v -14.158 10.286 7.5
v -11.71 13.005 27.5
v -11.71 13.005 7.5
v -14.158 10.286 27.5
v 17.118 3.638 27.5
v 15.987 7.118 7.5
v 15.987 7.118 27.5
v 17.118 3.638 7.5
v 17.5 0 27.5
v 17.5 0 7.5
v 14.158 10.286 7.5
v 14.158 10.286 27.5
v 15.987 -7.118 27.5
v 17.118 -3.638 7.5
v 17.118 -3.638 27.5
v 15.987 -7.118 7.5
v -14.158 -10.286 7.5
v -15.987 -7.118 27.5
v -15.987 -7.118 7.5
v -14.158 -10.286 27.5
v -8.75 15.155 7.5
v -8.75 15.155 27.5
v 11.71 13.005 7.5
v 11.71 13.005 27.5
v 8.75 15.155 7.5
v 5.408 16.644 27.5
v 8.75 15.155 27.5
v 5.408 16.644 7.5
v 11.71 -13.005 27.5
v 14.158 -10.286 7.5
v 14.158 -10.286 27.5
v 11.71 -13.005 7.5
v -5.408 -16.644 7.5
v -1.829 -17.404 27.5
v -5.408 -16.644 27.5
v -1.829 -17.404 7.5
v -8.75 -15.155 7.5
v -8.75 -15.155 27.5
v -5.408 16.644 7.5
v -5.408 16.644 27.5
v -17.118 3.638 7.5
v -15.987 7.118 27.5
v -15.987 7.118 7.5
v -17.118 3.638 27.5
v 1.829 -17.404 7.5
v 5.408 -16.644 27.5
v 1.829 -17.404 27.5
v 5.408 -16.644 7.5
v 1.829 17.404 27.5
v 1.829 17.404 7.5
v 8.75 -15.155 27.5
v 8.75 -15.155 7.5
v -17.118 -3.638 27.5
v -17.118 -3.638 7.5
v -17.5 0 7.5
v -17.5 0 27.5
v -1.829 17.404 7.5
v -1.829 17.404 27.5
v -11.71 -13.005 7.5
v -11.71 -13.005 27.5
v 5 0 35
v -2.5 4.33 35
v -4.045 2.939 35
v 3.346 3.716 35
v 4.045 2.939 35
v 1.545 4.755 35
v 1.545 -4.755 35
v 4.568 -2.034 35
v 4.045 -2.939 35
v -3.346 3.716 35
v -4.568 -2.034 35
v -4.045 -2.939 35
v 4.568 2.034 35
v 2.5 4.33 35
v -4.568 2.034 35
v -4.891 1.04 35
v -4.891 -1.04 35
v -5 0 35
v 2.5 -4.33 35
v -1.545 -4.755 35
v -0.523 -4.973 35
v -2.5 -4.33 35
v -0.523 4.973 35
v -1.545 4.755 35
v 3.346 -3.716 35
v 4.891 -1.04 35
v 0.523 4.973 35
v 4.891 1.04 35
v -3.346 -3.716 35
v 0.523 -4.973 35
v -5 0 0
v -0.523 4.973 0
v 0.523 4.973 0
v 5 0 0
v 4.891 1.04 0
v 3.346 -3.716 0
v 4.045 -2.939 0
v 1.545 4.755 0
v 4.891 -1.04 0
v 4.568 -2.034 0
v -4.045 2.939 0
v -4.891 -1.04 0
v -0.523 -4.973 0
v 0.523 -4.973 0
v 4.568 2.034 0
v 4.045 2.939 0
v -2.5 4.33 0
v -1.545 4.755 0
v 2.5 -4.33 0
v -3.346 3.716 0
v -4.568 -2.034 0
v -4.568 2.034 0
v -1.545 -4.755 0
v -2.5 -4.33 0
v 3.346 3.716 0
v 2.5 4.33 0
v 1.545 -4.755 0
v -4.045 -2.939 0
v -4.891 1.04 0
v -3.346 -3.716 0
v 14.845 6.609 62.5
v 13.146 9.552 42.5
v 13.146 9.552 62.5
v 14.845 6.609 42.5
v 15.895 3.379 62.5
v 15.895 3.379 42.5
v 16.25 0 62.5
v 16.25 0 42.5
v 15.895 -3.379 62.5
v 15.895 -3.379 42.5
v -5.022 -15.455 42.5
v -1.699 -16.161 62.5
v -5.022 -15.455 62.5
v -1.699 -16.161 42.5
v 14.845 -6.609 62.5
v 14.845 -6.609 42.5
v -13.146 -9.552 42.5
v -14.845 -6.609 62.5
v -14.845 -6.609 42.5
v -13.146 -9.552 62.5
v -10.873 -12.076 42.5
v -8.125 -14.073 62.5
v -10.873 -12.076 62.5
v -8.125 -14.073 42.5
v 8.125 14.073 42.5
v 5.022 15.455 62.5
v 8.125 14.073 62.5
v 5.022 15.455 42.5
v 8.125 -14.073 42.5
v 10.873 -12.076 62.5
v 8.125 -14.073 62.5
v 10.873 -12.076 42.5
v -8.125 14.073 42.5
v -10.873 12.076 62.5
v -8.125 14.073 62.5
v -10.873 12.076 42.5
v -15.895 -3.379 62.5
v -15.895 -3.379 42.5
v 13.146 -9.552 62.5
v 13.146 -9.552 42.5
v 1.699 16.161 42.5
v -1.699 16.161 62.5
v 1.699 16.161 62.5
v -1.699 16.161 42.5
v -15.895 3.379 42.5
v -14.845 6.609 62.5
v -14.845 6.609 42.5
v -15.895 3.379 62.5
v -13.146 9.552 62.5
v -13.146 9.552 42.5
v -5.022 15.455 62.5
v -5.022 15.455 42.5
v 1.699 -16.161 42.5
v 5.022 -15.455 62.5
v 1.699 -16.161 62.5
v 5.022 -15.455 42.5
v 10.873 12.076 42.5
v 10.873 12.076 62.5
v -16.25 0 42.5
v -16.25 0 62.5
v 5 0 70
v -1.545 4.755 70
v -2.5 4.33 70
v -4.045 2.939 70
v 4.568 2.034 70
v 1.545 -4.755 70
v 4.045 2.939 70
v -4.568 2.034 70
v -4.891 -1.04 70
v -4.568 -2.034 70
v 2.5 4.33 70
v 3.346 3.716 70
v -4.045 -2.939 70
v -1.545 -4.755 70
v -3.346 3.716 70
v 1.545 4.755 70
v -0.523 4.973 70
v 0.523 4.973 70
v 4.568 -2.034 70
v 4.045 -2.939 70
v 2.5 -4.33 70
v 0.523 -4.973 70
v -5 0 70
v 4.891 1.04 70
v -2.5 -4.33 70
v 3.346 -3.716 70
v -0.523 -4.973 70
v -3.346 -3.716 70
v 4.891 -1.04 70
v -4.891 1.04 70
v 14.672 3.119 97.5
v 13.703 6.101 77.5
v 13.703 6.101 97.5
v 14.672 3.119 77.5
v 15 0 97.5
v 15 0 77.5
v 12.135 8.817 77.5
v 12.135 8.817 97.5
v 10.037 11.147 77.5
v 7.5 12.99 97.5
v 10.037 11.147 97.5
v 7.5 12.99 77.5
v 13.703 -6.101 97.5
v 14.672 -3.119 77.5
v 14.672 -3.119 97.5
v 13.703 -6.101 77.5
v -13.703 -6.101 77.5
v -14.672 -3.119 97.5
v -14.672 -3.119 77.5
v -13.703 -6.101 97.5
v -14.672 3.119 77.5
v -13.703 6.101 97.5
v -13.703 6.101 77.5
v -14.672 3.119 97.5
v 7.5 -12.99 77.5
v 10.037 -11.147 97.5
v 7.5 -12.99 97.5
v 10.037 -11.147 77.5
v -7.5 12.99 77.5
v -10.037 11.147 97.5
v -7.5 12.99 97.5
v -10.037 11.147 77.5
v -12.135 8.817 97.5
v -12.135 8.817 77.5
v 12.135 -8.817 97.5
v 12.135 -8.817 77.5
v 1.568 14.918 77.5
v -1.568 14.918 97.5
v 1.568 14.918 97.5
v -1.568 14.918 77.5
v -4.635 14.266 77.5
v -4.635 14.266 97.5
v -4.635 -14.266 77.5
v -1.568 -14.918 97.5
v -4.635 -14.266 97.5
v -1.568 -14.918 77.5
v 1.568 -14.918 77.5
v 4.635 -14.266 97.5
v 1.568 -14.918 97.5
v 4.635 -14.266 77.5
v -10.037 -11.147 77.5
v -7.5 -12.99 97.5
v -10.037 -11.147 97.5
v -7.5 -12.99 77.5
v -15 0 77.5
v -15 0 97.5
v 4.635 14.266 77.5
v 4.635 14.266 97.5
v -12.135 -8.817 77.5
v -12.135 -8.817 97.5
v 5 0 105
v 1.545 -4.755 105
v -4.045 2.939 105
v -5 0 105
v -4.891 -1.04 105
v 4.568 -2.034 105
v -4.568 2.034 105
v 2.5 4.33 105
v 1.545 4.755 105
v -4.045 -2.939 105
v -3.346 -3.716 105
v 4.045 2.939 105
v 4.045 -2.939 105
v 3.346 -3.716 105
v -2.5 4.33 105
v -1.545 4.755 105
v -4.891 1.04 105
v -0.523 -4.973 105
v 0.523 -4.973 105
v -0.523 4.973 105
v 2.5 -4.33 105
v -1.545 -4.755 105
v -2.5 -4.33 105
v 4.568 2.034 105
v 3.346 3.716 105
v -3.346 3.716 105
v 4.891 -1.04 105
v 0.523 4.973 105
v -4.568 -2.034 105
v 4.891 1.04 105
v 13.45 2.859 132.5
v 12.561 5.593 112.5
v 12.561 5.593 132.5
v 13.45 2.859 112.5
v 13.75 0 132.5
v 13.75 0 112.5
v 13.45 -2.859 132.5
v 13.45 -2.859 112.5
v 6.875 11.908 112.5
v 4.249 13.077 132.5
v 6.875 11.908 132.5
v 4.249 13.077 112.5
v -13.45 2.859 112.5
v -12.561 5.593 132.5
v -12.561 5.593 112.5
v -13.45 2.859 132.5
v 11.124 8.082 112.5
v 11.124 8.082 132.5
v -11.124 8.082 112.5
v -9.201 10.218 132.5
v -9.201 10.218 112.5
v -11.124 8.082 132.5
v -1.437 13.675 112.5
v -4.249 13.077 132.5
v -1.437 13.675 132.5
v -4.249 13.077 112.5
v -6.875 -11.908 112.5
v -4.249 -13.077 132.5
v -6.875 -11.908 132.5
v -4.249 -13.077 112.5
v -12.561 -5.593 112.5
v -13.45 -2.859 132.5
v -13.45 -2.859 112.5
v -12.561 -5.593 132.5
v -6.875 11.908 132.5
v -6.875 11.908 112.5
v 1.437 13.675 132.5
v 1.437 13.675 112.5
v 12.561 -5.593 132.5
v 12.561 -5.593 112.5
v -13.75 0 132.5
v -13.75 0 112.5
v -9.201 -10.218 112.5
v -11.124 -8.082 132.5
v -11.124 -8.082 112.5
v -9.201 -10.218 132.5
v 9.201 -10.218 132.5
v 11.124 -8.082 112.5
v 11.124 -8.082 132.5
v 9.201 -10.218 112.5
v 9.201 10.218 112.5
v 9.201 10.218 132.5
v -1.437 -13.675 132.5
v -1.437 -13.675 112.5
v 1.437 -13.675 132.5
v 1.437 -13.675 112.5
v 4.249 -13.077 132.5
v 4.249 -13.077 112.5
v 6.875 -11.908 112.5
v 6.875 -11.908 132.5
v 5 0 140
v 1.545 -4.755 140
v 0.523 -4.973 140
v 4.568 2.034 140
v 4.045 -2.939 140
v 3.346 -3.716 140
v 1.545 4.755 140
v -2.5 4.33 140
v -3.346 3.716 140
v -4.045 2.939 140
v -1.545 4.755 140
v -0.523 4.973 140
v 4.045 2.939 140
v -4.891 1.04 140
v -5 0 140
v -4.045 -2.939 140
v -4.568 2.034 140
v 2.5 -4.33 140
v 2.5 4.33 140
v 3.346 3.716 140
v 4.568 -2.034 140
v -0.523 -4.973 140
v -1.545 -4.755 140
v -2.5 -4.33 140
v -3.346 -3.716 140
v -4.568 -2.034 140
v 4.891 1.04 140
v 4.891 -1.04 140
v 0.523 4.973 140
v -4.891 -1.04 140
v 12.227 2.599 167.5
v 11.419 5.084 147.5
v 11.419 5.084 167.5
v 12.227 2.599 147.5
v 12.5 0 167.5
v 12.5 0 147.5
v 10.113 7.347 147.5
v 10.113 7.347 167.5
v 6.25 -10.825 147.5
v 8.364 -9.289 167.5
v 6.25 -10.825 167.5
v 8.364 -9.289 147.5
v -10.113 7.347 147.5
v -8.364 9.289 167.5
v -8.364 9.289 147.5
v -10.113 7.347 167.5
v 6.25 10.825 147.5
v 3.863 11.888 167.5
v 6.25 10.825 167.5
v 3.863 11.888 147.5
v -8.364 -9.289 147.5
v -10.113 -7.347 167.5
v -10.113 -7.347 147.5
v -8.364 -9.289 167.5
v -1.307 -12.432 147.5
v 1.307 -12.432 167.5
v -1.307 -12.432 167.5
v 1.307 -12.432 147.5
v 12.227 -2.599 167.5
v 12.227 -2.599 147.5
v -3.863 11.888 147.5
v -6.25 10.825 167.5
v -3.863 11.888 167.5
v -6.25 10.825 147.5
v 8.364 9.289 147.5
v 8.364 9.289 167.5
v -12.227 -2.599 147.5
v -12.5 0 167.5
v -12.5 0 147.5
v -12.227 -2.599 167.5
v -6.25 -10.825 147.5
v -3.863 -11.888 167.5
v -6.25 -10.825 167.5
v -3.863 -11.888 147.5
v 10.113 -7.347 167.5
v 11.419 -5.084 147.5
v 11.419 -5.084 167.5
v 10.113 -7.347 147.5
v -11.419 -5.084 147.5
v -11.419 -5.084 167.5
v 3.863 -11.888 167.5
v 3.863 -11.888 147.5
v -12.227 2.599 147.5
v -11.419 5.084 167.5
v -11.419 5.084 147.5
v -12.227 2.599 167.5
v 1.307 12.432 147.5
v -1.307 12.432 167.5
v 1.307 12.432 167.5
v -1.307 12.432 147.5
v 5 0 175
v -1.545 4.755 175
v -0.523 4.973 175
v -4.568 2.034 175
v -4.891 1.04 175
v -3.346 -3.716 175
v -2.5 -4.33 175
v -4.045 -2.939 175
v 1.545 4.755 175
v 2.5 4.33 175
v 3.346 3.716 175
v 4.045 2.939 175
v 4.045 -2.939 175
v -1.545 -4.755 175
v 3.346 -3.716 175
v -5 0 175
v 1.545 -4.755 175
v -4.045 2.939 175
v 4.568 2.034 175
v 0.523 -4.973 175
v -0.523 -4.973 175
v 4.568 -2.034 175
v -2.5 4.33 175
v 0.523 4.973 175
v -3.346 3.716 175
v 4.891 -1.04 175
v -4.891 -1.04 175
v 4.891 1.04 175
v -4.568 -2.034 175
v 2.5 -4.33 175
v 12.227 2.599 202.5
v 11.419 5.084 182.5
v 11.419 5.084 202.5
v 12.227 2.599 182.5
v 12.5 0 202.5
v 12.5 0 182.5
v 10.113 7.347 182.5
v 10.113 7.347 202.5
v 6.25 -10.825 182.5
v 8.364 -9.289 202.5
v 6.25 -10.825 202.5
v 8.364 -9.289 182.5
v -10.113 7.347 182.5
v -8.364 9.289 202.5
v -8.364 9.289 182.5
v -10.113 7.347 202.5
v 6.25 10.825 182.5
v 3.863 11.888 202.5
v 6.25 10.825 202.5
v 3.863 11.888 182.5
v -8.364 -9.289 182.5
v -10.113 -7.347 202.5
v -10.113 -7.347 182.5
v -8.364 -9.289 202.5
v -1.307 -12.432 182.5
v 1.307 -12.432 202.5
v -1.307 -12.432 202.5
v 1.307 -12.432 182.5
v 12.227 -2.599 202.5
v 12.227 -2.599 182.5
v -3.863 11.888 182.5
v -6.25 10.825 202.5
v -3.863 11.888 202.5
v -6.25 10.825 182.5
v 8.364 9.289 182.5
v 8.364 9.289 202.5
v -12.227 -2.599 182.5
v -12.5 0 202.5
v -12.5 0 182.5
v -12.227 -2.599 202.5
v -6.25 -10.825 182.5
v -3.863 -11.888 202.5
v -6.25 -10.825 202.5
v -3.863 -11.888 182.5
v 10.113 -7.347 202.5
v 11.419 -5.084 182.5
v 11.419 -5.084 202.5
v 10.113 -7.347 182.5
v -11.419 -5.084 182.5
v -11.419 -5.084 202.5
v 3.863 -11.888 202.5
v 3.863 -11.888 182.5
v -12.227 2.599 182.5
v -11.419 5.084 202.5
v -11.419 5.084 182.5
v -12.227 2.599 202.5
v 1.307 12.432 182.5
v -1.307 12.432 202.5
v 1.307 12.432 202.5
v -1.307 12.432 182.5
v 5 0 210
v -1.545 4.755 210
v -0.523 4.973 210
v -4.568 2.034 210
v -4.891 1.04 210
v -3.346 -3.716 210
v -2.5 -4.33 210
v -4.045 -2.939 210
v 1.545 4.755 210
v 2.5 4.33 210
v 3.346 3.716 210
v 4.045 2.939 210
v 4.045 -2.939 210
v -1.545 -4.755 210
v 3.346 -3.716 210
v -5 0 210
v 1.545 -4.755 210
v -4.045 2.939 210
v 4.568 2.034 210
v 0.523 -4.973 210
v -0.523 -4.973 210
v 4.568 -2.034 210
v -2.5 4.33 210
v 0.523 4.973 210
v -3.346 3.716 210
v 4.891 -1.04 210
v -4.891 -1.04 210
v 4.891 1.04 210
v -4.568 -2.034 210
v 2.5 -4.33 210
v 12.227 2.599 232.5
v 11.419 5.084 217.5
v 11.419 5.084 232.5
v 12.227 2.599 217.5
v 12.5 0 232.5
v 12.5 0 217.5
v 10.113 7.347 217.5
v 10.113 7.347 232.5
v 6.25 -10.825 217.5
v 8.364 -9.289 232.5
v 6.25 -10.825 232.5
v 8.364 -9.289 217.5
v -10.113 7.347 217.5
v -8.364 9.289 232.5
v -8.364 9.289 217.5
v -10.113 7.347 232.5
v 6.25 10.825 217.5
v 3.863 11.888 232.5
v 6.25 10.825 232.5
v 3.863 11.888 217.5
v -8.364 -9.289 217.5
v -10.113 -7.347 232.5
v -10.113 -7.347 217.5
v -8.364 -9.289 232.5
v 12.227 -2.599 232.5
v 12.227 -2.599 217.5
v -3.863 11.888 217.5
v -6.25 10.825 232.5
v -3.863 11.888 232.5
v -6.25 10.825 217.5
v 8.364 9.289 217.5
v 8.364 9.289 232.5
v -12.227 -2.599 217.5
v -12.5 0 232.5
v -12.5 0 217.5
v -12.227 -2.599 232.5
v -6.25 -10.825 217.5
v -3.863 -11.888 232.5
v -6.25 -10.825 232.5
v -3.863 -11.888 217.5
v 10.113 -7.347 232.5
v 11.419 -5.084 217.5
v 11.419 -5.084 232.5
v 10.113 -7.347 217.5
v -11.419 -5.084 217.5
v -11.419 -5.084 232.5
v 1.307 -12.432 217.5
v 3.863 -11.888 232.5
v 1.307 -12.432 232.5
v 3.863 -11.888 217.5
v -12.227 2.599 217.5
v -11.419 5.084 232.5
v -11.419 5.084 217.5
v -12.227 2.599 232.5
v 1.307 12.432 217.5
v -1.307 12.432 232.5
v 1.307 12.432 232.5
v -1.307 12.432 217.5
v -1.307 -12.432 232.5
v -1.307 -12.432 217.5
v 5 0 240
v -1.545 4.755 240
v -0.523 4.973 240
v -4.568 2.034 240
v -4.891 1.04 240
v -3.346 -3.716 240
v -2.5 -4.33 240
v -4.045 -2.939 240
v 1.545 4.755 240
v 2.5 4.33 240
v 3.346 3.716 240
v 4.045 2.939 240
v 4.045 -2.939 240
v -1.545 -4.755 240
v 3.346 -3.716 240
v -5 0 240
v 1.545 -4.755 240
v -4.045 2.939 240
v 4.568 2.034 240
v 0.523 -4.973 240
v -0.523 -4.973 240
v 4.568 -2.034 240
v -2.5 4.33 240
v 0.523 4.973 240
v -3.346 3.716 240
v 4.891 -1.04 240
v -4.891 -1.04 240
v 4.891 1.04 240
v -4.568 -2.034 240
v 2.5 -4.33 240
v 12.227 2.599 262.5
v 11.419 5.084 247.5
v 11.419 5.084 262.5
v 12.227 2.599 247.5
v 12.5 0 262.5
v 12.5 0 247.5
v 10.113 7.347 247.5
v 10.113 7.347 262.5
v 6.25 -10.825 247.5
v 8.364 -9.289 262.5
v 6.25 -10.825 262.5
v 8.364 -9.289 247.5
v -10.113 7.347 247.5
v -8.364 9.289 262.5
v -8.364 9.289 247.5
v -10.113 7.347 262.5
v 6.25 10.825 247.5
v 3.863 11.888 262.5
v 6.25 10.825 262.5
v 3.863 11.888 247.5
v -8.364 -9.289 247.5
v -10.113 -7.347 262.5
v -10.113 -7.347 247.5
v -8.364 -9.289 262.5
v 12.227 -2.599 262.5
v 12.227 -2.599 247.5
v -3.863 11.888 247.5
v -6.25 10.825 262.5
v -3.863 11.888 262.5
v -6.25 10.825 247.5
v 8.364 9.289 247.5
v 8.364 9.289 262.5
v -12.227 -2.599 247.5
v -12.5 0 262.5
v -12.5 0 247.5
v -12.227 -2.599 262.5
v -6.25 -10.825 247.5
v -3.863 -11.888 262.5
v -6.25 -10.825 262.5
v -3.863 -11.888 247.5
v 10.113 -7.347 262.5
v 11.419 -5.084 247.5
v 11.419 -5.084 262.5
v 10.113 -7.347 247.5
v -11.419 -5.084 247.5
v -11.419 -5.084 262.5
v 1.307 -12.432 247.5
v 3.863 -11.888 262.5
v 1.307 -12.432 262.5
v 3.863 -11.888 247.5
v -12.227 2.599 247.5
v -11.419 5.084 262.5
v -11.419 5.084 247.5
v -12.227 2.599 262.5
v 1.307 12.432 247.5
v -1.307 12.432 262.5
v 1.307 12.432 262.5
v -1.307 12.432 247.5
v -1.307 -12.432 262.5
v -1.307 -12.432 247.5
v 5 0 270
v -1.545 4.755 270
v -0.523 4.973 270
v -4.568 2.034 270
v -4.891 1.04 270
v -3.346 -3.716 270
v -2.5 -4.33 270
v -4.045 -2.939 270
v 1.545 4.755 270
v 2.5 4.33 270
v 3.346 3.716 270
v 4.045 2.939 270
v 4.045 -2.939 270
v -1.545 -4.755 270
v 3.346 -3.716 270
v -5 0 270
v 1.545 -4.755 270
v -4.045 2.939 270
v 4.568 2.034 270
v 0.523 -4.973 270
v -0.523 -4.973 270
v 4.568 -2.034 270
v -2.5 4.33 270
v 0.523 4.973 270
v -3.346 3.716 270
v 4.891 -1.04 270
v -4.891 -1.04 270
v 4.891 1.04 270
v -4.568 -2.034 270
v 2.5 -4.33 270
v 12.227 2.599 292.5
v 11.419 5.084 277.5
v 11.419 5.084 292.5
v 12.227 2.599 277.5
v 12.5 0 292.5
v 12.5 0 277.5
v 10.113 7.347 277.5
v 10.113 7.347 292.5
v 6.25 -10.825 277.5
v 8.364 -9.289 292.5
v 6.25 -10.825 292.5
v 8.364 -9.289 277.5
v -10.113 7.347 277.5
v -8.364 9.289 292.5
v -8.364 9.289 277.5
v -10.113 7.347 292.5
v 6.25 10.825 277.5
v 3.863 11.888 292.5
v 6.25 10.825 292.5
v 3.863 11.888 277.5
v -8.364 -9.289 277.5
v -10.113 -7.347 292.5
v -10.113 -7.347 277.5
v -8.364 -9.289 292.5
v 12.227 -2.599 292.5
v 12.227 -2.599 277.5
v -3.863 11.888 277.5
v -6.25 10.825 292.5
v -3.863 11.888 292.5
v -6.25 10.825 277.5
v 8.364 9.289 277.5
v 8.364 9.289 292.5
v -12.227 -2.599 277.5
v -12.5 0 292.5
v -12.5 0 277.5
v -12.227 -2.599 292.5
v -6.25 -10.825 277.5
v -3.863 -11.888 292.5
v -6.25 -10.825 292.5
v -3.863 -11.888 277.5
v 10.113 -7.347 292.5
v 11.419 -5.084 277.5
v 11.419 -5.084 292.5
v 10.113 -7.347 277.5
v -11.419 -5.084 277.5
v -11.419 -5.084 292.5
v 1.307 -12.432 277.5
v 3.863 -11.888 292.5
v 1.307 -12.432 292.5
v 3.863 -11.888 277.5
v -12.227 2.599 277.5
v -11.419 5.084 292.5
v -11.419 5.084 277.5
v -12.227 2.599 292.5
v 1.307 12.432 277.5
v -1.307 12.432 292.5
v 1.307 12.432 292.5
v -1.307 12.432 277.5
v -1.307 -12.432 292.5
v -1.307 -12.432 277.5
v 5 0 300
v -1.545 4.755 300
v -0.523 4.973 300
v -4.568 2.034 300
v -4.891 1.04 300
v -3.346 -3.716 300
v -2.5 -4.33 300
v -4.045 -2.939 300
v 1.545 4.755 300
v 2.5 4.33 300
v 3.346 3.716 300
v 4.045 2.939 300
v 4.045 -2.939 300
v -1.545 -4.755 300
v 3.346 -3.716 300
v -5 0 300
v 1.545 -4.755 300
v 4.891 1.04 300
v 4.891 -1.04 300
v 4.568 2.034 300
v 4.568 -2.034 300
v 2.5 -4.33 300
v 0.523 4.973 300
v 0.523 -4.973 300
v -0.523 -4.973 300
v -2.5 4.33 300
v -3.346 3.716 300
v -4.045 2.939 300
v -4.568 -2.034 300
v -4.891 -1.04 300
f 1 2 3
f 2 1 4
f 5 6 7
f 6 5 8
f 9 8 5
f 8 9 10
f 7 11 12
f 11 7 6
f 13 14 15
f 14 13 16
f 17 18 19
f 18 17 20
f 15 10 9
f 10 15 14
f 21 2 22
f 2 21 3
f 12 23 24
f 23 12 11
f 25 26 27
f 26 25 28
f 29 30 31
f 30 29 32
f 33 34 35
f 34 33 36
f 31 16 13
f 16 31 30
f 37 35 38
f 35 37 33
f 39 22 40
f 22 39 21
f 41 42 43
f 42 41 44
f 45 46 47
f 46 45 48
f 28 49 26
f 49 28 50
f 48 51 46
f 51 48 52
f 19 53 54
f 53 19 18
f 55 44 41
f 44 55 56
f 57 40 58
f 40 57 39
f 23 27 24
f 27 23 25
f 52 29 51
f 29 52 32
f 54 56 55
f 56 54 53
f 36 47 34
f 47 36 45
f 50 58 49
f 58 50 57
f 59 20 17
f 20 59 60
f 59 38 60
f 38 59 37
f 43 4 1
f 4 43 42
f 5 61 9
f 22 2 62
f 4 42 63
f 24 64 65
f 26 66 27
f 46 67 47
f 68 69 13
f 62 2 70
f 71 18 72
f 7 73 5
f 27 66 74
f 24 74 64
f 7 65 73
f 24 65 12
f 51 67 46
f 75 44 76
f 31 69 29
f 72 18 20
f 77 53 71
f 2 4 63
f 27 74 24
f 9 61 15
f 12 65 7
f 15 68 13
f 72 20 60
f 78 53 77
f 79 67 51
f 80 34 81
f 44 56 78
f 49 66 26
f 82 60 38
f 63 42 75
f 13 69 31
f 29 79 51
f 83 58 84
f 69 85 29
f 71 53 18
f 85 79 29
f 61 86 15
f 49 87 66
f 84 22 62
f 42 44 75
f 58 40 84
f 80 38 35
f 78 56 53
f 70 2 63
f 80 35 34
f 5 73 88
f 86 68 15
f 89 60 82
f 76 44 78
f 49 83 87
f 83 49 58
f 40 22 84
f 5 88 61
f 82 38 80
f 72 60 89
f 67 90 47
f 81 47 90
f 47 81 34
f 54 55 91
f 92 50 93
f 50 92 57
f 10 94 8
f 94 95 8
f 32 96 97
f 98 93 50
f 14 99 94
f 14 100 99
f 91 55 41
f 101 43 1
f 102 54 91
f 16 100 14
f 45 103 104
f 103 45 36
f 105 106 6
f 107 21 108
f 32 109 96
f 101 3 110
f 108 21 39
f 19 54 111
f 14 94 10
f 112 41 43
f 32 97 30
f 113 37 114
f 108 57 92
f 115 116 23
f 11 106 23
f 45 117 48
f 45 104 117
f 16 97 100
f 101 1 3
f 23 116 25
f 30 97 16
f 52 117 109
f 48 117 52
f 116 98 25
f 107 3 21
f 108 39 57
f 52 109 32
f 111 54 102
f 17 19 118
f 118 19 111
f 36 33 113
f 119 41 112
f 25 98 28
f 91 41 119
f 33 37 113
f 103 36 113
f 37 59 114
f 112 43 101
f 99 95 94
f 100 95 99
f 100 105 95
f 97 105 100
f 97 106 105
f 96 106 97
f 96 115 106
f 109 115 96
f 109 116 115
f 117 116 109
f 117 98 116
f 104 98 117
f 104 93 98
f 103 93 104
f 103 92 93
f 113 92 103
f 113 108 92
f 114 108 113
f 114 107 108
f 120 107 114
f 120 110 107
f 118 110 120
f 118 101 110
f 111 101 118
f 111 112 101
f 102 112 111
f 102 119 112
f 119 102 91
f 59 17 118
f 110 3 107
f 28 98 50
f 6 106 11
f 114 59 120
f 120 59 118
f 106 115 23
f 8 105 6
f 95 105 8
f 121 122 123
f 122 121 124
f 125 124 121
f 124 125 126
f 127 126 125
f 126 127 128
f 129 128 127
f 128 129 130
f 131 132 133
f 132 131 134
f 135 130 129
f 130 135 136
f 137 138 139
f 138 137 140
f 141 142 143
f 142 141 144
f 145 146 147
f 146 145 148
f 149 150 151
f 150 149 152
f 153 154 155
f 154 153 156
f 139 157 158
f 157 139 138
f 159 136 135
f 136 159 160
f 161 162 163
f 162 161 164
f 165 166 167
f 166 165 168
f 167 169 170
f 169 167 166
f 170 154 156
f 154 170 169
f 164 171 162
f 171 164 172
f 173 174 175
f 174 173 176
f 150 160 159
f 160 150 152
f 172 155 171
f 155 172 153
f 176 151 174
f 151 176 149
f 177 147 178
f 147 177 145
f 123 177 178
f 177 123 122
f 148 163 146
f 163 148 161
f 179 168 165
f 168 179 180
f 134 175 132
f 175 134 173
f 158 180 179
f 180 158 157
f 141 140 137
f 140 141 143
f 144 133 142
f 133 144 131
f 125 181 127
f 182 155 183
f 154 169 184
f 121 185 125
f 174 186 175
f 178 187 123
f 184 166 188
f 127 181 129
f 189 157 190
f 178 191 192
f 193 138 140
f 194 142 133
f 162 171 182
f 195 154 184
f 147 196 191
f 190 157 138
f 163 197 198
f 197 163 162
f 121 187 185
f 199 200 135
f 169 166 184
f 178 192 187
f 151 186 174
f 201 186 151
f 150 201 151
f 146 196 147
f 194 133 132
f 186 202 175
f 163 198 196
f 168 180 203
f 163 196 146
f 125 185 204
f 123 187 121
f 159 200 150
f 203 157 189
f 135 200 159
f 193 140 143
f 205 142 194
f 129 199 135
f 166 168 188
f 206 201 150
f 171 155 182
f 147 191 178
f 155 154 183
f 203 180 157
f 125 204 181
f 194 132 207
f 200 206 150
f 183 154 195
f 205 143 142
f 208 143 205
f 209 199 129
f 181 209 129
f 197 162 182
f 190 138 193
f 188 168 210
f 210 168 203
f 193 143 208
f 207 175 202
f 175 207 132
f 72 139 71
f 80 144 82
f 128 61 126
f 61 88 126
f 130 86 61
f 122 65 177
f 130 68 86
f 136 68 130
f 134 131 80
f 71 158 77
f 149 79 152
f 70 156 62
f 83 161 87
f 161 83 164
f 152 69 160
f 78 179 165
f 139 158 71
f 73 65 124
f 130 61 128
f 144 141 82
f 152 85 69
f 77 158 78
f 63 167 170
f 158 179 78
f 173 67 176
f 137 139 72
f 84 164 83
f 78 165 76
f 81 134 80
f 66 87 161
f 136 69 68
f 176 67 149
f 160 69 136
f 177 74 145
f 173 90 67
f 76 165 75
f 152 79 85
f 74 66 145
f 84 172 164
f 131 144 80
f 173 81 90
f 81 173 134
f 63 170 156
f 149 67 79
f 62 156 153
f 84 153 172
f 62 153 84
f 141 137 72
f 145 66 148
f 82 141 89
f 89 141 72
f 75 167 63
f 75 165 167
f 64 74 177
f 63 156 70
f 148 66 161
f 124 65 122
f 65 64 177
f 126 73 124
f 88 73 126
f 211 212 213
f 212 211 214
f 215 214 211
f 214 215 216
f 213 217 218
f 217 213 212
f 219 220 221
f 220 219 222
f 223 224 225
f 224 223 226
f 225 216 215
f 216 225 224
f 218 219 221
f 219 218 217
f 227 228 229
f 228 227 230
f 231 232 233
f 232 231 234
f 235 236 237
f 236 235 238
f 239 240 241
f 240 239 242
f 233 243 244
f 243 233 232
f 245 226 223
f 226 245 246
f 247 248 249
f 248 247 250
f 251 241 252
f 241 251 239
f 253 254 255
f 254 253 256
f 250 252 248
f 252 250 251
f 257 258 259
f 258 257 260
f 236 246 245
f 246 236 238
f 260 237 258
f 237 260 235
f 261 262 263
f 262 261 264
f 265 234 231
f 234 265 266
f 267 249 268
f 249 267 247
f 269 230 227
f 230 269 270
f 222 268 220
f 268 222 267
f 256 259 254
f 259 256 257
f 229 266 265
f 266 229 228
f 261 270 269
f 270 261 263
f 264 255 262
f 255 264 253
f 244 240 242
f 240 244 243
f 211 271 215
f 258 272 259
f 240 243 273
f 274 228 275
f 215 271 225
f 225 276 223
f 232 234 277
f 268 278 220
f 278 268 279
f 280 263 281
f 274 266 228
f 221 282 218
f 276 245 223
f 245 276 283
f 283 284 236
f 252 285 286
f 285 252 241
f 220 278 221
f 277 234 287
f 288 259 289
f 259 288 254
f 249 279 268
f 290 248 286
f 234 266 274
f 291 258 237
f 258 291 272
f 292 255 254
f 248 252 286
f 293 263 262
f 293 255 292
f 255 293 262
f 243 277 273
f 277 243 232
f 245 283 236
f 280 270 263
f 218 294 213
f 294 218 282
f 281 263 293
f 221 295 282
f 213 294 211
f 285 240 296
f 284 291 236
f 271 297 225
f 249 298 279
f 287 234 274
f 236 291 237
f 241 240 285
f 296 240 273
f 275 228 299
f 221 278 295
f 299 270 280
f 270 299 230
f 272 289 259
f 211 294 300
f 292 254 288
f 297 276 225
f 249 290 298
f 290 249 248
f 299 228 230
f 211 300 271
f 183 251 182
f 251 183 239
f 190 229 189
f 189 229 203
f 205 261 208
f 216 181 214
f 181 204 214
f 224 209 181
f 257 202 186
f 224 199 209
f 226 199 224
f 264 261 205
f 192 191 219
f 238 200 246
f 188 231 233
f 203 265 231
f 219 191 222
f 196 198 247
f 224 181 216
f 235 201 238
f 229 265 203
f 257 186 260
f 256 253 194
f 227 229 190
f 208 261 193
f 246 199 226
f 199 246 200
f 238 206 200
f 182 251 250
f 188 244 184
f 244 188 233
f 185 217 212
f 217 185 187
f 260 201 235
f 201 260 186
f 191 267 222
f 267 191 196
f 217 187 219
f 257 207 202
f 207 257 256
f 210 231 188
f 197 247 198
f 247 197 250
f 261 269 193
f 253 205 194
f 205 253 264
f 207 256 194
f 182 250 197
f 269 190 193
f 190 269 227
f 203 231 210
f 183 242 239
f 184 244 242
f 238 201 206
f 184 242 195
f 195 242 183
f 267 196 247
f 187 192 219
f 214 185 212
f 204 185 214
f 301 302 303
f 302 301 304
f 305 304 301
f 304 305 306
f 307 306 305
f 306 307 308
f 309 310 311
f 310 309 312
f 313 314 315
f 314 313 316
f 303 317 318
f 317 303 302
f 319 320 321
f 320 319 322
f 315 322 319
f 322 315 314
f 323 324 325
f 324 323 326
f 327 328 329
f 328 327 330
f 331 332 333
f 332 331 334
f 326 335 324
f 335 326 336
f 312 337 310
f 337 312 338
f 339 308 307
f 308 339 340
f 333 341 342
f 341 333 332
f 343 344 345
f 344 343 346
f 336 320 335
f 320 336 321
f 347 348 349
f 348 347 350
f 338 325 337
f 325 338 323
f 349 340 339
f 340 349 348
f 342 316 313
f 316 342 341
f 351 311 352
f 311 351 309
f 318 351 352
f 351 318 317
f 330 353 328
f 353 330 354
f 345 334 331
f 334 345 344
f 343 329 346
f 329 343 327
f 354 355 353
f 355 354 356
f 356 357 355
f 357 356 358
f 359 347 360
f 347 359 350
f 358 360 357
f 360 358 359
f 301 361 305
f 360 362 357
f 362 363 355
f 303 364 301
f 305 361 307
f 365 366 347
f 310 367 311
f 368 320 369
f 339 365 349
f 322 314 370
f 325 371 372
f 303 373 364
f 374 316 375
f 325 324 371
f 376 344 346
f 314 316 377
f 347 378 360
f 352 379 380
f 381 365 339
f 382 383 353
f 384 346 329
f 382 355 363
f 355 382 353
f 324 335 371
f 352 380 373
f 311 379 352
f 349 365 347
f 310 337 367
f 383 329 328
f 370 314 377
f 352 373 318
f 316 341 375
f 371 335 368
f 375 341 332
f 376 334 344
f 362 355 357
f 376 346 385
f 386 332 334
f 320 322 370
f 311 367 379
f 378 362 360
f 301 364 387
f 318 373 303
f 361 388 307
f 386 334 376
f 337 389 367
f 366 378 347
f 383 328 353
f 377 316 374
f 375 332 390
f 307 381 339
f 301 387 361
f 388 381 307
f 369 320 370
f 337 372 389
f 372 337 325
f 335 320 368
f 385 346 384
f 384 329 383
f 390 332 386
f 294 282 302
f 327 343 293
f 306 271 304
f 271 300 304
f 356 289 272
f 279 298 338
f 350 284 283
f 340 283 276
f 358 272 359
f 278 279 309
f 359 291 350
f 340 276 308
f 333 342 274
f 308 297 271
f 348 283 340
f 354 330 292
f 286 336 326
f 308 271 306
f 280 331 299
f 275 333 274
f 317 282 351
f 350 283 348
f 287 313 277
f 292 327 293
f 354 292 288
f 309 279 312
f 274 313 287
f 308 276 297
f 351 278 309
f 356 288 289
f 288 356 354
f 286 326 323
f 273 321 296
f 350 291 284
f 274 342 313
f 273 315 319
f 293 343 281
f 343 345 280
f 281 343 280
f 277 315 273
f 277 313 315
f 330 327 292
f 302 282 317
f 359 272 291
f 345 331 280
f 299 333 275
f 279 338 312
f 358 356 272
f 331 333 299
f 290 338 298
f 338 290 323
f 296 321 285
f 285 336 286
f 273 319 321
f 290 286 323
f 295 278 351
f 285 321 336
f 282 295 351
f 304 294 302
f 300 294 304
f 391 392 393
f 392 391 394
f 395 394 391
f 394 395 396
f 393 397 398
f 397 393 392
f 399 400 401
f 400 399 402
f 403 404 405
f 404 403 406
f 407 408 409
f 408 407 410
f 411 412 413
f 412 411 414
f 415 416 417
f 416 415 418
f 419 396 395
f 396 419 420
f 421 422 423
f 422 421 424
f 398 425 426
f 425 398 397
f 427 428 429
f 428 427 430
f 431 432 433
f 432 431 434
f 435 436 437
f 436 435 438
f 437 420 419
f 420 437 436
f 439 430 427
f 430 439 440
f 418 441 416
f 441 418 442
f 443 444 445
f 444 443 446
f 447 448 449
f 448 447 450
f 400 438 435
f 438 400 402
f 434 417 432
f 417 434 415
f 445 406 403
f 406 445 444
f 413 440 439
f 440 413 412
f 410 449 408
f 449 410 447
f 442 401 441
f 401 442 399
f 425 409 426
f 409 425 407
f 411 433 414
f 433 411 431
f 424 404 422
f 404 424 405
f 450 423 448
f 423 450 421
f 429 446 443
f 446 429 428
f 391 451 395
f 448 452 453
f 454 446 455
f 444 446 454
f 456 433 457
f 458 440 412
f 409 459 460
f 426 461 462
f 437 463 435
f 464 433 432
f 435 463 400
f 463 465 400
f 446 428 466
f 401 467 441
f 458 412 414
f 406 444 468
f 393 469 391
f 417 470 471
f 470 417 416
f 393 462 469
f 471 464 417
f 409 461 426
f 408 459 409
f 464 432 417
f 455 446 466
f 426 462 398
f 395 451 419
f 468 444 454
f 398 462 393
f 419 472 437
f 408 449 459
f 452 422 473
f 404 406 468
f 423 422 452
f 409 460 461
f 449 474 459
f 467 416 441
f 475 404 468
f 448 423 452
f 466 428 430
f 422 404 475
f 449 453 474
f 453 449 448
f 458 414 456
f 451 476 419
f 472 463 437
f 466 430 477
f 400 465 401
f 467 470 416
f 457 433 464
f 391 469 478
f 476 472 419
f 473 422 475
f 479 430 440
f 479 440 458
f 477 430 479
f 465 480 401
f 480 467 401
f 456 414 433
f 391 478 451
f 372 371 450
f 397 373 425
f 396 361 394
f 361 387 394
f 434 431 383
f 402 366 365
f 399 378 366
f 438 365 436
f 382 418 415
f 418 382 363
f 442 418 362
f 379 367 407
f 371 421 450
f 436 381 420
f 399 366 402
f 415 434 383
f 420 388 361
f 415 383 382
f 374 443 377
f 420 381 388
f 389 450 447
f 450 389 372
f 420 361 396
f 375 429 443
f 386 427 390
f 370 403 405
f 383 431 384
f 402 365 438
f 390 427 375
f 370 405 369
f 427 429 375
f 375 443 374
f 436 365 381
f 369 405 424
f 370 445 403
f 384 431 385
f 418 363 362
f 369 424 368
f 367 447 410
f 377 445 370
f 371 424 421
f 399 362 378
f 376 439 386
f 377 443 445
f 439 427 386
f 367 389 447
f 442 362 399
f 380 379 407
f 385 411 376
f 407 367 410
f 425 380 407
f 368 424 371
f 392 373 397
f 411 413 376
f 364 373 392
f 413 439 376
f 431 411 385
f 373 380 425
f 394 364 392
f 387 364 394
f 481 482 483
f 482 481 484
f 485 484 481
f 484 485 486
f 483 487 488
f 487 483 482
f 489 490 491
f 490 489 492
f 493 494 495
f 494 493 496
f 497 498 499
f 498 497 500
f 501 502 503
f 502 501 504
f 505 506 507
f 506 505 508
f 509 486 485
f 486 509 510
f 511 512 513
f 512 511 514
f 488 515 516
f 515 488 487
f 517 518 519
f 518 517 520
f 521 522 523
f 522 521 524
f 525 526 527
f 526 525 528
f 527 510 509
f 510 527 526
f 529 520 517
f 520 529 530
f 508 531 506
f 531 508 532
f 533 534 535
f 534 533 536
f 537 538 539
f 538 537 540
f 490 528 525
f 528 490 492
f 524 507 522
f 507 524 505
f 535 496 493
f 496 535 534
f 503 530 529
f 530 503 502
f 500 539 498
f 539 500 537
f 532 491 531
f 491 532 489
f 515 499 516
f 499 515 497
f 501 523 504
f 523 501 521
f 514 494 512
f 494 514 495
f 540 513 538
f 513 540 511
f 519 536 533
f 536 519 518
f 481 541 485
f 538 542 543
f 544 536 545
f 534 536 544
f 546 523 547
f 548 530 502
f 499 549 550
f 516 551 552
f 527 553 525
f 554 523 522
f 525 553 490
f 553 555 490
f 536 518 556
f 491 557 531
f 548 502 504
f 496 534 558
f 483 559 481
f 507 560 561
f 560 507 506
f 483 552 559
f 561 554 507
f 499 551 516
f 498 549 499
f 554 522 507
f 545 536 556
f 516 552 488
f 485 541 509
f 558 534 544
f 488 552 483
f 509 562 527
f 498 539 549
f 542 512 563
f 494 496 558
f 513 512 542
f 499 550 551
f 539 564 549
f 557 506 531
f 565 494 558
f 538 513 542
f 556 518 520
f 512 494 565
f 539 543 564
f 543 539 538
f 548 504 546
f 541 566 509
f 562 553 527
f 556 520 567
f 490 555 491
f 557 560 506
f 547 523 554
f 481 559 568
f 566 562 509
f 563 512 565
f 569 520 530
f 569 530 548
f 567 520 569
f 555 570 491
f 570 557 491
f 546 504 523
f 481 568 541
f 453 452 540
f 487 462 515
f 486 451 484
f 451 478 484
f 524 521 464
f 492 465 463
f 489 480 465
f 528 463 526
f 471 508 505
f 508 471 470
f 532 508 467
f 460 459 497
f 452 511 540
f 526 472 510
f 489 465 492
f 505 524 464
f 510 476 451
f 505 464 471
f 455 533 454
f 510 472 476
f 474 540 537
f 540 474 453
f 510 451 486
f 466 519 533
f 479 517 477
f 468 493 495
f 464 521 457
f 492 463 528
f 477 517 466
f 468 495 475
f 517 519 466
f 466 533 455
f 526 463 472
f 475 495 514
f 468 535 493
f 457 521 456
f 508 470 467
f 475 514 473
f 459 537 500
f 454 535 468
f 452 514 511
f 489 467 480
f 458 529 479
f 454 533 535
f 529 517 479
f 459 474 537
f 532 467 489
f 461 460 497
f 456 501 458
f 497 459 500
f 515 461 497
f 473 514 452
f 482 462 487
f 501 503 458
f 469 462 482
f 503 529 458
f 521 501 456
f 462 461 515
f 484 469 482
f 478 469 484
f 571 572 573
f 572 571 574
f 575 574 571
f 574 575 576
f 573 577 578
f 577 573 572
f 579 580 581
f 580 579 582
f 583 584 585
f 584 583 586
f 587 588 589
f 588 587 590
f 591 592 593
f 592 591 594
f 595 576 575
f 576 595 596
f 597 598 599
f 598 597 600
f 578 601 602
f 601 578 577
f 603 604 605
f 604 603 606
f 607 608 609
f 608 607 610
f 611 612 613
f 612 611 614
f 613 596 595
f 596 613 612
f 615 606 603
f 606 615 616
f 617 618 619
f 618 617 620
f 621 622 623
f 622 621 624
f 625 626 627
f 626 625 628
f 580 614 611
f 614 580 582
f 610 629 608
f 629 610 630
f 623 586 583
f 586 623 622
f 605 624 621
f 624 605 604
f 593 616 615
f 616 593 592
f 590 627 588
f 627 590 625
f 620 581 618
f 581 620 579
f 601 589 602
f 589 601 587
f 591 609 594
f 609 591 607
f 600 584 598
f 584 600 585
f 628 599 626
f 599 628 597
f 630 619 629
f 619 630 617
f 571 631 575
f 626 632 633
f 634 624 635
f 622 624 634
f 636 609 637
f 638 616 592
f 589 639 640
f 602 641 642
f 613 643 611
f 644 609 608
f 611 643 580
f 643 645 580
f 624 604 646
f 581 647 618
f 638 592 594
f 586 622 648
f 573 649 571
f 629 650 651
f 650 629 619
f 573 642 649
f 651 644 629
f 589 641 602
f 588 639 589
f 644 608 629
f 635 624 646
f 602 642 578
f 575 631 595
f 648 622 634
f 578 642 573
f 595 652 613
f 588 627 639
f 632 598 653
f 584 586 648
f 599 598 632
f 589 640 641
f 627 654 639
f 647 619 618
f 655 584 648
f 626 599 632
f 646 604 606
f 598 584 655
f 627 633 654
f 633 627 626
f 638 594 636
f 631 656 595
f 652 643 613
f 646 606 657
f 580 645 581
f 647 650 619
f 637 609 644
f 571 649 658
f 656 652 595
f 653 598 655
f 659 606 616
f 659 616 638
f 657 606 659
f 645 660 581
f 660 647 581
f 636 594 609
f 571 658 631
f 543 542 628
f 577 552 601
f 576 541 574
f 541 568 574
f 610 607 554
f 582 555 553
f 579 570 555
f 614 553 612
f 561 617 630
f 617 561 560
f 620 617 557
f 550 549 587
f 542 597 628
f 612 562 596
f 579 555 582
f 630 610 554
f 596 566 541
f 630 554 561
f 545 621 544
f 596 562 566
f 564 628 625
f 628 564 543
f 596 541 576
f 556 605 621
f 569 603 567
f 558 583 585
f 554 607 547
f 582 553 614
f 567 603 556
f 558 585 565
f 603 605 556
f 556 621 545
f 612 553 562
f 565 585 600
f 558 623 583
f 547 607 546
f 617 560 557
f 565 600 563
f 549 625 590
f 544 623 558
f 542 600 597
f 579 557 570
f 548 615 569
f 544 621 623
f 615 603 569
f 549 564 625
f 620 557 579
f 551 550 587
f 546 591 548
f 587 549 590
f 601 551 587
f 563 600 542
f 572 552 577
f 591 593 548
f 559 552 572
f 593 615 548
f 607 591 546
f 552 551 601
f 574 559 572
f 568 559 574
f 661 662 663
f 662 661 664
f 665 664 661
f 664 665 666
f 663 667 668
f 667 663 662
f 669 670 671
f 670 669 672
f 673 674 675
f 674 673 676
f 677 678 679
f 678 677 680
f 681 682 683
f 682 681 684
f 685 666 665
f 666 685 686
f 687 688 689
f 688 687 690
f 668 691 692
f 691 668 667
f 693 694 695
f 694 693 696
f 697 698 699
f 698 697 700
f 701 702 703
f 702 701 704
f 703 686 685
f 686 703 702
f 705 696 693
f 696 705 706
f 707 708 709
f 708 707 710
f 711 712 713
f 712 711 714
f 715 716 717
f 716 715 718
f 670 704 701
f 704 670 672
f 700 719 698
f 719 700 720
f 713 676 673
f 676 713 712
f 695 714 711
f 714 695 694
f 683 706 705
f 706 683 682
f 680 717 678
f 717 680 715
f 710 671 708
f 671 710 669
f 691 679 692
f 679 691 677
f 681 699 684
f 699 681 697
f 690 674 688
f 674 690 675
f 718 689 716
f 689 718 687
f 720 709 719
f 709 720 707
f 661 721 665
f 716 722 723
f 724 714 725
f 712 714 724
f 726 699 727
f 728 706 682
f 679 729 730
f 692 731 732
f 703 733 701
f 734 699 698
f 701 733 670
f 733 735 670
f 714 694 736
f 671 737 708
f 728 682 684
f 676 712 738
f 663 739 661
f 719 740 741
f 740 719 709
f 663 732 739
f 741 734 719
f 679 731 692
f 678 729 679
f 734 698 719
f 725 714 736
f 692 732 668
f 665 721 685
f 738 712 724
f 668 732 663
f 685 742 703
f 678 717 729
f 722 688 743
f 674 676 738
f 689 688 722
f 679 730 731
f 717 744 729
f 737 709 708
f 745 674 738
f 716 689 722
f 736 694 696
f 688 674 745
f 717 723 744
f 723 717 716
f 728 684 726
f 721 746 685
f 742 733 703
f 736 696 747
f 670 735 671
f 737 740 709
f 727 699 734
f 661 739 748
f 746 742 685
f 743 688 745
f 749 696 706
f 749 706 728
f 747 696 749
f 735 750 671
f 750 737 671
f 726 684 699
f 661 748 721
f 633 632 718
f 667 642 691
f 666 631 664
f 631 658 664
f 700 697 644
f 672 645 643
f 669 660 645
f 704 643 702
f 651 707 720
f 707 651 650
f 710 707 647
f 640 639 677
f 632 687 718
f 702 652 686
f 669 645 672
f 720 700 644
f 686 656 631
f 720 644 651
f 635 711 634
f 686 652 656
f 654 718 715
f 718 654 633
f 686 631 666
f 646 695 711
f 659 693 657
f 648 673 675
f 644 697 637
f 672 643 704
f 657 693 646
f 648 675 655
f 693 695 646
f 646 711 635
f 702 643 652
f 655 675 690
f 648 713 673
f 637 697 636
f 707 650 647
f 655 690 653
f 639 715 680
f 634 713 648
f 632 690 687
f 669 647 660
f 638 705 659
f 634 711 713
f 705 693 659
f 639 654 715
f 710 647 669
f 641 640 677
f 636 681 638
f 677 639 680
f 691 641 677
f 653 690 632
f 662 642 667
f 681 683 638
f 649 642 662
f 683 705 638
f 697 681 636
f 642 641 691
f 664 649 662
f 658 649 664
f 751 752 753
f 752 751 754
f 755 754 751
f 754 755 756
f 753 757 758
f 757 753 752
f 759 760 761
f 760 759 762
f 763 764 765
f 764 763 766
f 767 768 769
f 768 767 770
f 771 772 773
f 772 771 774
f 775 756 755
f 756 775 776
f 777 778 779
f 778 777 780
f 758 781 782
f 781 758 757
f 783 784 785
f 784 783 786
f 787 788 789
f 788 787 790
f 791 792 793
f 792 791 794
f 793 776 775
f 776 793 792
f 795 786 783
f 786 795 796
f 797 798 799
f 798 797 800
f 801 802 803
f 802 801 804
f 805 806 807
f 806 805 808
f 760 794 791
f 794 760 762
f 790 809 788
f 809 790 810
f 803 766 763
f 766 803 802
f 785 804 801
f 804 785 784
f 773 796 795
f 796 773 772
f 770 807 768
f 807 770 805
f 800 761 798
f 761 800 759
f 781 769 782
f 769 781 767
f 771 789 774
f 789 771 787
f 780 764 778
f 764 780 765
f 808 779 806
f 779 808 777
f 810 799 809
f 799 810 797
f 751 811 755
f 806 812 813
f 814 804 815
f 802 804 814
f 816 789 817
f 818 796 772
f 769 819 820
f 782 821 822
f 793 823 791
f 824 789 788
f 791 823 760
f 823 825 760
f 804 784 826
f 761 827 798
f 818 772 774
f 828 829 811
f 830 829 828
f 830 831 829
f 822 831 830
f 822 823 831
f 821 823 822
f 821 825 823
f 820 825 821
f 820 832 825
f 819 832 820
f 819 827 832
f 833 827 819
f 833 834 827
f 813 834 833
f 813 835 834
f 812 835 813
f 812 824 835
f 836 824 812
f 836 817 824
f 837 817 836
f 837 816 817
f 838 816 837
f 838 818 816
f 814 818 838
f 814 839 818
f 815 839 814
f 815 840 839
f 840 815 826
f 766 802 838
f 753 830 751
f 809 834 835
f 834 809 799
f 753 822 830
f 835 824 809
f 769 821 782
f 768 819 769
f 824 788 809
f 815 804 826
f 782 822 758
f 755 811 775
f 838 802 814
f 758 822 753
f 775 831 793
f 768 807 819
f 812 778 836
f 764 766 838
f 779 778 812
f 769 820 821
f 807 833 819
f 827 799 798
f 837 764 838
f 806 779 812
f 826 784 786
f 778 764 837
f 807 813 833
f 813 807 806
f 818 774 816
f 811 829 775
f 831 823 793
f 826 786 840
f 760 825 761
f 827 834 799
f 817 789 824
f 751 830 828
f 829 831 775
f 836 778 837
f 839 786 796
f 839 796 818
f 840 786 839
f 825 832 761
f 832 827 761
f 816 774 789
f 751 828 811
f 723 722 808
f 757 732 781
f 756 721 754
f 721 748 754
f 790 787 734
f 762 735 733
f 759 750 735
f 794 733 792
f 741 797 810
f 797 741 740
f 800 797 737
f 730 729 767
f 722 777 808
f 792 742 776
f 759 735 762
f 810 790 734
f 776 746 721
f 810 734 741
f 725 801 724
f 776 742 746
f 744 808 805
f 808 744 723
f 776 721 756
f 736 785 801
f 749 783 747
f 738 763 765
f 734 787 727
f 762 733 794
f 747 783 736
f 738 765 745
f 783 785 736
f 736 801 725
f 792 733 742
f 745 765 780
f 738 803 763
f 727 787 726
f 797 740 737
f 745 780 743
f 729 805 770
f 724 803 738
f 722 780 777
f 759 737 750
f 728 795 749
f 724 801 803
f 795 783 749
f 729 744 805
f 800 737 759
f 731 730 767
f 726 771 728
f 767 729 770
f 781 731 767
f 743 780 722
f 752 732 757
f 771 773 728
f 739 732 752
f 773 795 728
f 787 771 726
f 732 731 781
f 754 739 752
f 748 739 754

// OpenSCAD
$fn = 30;

Diameter = [35, 32.5, 30, 27.5, 25, 25, 25, 25, 25];
H_cylinder = [20, 20, 20, 20, 20, 20, 15, 15, 15];
h_cone = 7.5;
Num_holes = [5, 5, 5, 4, 4, 4, 3, 3, 3]; // Should be descending
assert(len(Diameter)==len(H_cylinder), "Diameter and H_cylinder must have equal lengths.");
assert(len(Diameter)==len(Num_holes), "Diameter and Num_holes must have equal lengths.");

caterpillar(Diameter, H_cylinder, h_cone);
hole_pos(Diameter, H_cylinder, h_cone, Num_holes);
//hole_tubes(Diameter, H_cylinder, h_cone, Num_holes);
//mold(Diameter, H_cylinder, h_cone);

module hole_pos(Diameter, H_cylinder, h_cone, Num_holes, margin_r=2.5, d_end=10, eps=0.5)
{
    H_block = calc_H_block(H_cylinder, h_cone);
    Z_shift = calc_z_shift(H_block);
    theta = 360/Num_holes[0];
    for (i=[0: len(Diameter)-1])
    {    
        for (j=[0: Num_holes[i]-1])
        {
        r = Diameter[i]/2 - margin_r;
        x = r*cos(2*j*theta);
        y = r*sin(2*j*theta);
        z = h_cone*(Diameter[i]-2*r)/(Diameter[i]-d_end);
        z_1 = h_cone - z + Z_shift[i];
        z_2 = h_cone + H_cylinder[i] + z + Z_shift[i];
        //translate([x, y, z_1]) sphere(d=3);
        //translate([x, y, z_2]) sphere(d=3);
        echo(x, y, z_1+eps);
        echo(x, y, z_2-eps);
        }
    }
}


module hole_tubes(Diameter, H_cylinder, h_cone, Num_holes, margin_r=2.5, d_hole=2)
{
    theta = 360/max(Num_holes);
    H_block = calc_H_block(H_cylinder, h_cone);
    Z_shift = calc_z_shift(H_block);
    for (j=[0: len(Diameter)-1])
    {   r = Diameter[j]/2 - margin_r;
        for (i=[0:Num_holes[j]-1])
        {
            translate([r*cos(2*i*theta), r*sin(2*i*theta), Z_shift[j]])
                cylinder(h=H_cylinder[j]+2*h_cone, d=d_hole);
        }
    }
}

module mold(Diameter, H_cylinder, h_cone, margin_l=2.5, margin_w=10, margin_h=10)
{
    H_block = [for (hc=H_cylinder) hc+2*h_cone];
    h = [for (i=H_block) 1]*H_block;
    w = max(Diameter);
    l = max(Diameter)/2;
    difference()
    {
        translate([l/2,0,h/2])
            cube([l+margin_l, w+margin_w, h+margin_h], center=true);
        caterpillar(Diameter, H_cylinder, h_cone);
        
    }
}
    
module caterpillar(Diameter, H_cylinder, h_cone)
{
    H_block = calc_H_block(H_cylinder, h_cone);
    Z_shift = calc_z_shift(H_block);

        union()
        {   
            for (i=[0: len(Diameter)-1])
            {
                translate([0, 0, Z_shift[i]])
                    block(Diameter[i], H_cylinder[i], h_cone);
            }
        }
}

module block(diameter, h_cylinder, h_cone, d_end=10)
{
    translate([0, 0, h_cone])
        union()
        {
            cylinder(h=h_cylinder, d=diameter);
            translate([0, 0, h_cylinder])
                cylinder(h=h_cone , d1=diameter, d2=d_end);
            translate([0, 0, -h_cone])
                cylinder(h=h_cone , d1=d_end, d2=diameter);
        }
}

function calc_H_block(H_cylinder, h_cone) = [ for (h=H_cylinder) h+2*h_cone];
function calc_z_shift(H_block)
    = concat(0, [ for (i=0, sum=H_block[0]; i<len(H_block);
                i=i+1, sum=sum+(H_block[i]==undef?0:H_block[i])) sum]);
